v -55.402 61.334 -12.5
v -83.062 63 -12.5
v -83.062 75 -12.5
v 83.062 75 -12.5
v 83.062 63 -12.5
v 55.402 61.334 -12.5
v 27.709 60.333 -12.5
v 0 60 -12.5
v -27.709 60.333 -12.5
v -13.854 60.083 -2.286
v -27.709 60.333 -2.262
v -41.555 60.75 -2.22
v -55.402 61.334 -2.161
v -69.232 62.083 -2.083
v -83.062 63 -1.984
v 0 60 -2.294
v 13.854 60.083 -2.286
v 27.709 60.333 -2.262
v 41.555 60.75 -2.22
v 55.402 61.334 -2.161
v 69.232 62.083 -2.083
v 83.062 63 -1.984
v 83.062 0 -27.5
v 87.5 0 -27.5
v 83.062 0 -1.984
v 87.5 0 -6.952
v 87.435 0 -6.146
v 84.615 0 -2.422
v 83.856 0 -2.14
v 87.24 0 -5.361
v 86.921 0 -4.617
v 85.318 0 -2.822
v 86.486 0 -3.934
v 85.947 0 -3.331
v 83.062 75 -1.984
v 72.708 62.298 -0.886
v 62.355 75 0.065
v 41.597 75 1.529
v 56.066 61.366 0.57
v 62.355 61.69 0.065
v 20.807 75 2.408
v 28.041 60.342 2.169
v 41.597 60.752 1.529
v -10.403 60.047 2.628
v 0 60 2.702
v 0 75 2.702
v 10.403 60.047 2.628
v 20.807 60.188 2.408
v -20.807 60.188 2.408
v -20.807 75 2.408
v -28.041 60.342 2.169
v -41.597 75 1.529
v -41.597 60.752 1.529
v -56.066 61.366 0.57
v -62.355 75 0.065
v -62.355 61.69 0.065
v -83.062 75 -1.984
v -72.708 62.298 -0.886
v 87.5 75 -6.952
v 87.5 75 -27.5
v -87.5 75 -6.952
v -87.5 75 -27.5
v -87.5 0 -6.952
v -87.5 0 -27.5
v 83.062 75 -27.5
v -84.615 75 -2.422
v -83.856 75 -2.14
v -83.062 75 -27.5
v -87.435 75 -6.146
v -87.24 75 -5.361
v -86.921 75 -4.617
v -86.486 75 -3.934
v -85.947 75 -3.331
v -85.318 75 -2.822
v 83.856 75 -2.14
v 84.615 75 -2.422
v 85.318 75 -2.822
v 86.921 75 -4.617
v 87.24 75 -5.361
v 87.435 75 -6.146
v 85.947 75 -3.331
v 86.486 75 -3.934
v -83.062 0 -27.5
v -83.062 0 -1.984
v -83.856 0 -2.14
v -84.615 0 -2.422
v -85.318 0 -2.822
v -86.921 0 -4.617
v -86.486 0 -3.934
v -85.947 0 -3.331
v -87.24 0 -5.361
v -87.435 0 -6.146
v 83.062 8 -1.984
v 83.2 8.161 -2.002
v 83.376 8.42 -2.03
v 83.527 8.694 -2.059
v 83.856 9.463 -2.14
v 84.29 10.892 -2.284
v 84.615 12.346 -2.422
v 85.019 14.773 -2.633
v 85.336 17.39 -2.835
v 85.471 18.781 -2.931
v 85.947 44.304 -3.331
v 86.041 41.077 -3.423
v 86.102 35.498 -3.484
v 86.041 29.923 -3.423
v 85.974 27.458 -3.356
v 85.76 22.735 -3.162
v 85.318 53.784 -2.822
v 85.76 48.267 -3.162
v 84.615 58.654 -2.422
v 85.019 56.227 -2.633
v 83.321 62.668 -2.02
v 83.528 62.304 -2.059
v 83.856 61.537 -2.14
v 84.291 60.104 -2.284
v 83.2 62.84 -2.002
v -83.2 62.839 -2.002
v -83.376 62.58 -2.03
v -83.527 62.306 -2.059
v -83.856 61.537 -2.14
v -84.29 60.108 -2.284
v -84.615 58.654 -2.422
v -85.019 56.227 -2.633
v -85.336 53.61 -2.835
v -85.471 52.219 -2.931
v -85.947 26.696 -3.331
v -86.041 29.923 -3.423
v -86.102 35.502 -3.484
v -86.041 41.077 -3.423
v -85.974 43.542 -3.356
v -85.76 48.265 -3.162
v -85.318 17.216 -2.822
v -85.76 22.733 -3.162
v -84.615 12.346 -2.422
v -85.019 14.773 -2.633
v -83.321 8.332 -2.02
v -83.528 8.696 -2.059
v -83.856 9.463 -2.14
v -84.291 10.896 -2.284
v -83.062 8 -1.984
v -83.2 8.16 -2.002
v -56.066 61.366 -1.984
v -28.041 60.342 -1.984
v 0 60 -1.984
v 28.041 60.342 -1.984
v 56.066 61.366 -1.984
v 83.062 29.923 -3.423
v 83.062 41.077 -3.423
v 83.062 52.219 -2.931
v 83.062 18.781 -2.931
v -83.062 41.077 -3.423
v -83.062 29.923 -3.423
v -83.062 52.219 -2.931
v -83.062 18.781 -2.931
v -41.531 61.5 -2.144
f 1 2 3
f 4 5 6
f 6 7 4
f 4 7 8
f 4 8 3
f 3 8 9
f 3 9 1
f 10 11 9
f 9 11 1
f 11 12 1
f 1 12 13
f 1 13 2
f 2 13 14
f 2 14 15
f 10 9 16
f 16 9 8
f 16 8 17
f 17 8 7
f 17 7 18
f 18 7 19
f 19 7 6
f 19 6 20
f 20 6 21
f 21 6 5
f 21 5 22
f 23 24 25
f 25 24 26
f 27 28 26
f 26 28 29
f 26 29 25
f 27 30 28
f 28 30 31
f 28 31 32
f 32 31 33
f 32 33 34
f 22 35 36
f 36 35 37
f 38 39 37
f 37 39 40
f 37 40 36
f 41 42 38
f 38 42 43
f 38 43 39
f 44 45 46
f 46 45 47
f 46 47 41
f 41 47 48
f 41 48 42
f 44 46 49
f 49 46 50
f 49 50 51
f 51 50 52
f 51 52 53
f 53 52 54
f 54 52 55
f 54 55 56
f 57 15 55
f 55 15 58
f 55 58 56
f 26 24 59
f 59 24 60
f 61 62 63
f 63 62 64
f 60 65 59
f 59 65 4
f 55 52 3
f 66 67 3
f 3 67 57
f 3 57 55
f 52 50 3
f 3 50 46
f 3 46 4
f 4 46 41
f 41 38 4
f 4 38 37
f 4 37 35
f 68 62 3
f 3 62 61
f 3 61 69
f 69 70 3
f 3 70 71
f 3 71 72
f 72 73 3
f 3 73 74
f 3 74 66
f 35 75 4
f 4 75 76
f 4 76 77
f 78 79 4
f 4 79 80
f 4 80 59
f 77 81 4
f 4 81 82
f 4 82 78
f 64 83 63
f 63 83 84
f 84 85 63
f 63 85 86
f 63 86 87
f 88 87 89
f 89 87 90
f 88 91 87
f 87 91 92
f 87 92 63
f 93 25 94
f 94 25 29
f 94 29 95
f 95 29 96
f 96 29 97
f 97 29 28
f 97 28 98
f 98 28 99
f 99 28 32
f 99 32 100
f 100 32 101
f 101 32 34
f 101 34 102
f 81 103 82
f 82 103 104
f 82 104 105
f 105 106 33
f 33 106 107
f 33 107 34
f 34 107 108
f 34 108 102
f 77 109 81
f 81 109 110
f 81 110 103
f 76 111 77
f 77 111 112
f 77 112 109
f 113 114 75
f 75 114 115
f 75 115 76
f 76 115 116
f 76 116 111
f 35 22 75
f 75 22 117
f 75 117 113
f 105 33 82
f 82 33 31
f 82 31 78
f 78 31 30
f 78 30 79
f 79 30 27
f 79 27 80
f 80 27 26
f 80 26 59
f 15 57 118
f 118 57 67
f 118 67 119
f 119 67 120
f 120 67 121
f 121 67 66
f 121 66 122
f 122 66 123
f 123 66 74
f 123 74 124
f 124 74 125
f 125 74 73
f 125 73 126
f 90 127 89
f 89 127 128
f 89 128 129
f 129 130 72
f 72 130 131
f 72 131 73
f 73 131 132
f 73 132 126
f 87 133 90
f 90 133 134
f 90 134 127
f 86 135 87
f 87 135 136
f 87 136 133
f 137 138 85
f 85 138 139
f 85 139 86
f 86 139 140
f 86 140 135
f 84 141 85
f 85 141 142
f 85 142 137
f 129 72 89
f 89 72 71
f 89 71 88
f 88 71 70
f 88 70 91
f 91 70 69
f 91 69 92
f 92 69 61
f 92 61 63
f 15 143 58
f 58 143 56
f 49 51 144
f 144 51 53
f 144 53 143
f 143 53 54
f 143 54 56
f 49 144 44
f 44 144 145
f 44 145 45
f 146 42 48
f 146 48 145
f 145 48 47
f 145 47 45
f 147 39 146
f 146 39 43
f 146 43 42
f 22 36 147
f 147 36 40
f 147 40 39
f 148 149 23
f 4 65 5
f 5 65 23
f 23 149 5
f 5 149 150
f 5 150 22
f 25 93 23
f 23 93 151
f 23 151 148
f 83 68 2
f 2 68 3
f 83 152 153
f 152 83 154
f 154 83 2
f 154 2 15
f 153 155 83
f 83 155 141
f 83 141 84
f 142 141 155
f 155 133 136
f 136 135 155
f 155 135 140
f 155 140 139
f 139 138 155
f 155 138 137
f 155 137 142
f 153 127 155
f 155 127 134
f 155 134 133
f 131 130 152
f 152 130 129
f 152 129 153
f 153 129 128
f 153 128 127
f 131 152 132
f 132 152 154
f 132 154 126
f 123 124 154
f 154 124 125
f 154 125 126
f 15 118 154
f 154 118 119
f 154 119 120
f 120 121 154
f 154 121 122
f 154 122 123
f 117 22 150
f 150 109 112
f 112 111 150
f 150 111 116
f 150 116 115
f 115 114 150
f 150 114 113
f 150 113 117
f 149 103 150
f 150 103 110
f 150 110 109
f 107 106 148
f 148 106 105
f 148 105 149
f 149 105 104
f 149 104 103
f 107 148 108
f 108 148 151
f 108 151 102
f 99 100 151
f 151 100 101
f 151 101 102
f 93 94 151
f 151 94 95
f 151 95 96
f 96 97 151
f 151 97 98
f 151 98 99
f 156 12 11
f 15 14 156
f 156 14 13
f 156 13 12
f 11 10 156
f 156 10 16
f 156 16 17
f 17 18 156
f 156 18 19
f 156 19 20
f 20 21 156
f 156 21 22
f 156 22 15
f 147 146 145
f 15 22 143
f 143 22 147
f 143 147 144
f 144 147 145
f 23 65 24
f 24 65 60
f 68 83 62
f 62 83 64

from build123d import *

# Parameters (mm, degrees)
BOSS_EXTRUDE1_DEPTH     = 75
FILLET1_R               = 5
CUT_EXTRUDE1_DEPTH      = 3.701539391
CUT_EXTRUDE1_DEPTH_BACK = 13.5
CUT_EXTRUDE2_DEPTH      = 1
CUT_EXTRUDE2_DEPTH_BACK = 176
SKETCH4_W               = 4.43767441
SKETCH4_H               = 75
BOSS_EXTRUDE2_DEPTH     = 15


with BuildPart() as part:
    # Sketch1 → Boss-Extrude1 (new body)
    with BuildSketch(Plane(origin=(0, 0, 0), x_dir=(1, 0, 0), z_dir=(0, 1, 0))):
        with BuildLine():
            Line((-87.5, 2.5), (-87.5, 12.5))
            Line((-87.5, 12.5), (87.5, 12.5))
            Line((87.5, 12.5), (87.5, 2.5))
            ThreePointArc((87.5, 2.5), (0, -2.701539391), (-87.5, 2.5))
        make_face()
    extrude(amount=BOSS_EXTRUDE1_DEPTH)

    # Fillet1
    fillet1_edges = [part.edges().sort_by_distance(p)[0] for p in [
        (-87.5, 37.5, -2.5),
        (87.5, 37.5, -2.5),
    ]]
    fillet(fillet1_edges, radius=FILLET1_R)

    # Sketch2 → Cut-Extrude1 (cut, two sides)
    with BuildSketch(Plane.XY) as cut_extrude1_sk:
        with BuildLine():
            Line((-83.06232559, 63), (-83.06232559, 0))
            Line((-83.06232559, 0), (83.06232559, 0))
            Line((83.06232559, 0), (83.06232559, 63))
            ThreePointArc((83.06232559, 63), (0, 60), (-83.06232559, 63))
        make_face()
    extrude(amount=CUT_EXTRUDE1_DEPTH, mode=Mode.SUBTRACT)
    extrude(cut_extrude1_sk.sketch, amount=-CUT_EXTRUDE1_DEPTH_BACK, mode=Mode.SUBTRACT)

    # Sketch3 → Cut-Extrude2 (cut, two sides)
    with BuildSketch(Plane.ZY.offset(87.5)) as cut_extrude2_sk:
        with BuildLine():
            Line((-1.984131445, 63), (-1.984131445, 8))
            ThreePointArc((-1.984131445, 8), (-3.484131445, 35.5), (-1.984131445, 63))
        make_face()
    extrude(amount=CUT_EXTRUDE2_DEPTH, mode=Mode.SUBTRACT)
    extrude(cut_extrude2_sk.sketch, amount=-CUT_EXTRUDE2_DEPTH_BACK, mode=Mode.SUBTRACT)

    # Sketch4 → Boss-Extrude2 (add)
    with BuildSketch(Plane(origin=(0, 0, -12.5), x_dir=(-1, 0, 0), z_dir=(0, 0, -1))):
        with Locations((-85.281162795, 37.5)):
            Rectangle(SKETCH4_W, SKETCH4_H)
        with Locations((85.281162795, 37.5)):
            Rectangle(SKETCH4_W, SKETCH4_H)
    extrude(amount=BOSS_EXTRUDE2_DEPTH)


solid = part.part
